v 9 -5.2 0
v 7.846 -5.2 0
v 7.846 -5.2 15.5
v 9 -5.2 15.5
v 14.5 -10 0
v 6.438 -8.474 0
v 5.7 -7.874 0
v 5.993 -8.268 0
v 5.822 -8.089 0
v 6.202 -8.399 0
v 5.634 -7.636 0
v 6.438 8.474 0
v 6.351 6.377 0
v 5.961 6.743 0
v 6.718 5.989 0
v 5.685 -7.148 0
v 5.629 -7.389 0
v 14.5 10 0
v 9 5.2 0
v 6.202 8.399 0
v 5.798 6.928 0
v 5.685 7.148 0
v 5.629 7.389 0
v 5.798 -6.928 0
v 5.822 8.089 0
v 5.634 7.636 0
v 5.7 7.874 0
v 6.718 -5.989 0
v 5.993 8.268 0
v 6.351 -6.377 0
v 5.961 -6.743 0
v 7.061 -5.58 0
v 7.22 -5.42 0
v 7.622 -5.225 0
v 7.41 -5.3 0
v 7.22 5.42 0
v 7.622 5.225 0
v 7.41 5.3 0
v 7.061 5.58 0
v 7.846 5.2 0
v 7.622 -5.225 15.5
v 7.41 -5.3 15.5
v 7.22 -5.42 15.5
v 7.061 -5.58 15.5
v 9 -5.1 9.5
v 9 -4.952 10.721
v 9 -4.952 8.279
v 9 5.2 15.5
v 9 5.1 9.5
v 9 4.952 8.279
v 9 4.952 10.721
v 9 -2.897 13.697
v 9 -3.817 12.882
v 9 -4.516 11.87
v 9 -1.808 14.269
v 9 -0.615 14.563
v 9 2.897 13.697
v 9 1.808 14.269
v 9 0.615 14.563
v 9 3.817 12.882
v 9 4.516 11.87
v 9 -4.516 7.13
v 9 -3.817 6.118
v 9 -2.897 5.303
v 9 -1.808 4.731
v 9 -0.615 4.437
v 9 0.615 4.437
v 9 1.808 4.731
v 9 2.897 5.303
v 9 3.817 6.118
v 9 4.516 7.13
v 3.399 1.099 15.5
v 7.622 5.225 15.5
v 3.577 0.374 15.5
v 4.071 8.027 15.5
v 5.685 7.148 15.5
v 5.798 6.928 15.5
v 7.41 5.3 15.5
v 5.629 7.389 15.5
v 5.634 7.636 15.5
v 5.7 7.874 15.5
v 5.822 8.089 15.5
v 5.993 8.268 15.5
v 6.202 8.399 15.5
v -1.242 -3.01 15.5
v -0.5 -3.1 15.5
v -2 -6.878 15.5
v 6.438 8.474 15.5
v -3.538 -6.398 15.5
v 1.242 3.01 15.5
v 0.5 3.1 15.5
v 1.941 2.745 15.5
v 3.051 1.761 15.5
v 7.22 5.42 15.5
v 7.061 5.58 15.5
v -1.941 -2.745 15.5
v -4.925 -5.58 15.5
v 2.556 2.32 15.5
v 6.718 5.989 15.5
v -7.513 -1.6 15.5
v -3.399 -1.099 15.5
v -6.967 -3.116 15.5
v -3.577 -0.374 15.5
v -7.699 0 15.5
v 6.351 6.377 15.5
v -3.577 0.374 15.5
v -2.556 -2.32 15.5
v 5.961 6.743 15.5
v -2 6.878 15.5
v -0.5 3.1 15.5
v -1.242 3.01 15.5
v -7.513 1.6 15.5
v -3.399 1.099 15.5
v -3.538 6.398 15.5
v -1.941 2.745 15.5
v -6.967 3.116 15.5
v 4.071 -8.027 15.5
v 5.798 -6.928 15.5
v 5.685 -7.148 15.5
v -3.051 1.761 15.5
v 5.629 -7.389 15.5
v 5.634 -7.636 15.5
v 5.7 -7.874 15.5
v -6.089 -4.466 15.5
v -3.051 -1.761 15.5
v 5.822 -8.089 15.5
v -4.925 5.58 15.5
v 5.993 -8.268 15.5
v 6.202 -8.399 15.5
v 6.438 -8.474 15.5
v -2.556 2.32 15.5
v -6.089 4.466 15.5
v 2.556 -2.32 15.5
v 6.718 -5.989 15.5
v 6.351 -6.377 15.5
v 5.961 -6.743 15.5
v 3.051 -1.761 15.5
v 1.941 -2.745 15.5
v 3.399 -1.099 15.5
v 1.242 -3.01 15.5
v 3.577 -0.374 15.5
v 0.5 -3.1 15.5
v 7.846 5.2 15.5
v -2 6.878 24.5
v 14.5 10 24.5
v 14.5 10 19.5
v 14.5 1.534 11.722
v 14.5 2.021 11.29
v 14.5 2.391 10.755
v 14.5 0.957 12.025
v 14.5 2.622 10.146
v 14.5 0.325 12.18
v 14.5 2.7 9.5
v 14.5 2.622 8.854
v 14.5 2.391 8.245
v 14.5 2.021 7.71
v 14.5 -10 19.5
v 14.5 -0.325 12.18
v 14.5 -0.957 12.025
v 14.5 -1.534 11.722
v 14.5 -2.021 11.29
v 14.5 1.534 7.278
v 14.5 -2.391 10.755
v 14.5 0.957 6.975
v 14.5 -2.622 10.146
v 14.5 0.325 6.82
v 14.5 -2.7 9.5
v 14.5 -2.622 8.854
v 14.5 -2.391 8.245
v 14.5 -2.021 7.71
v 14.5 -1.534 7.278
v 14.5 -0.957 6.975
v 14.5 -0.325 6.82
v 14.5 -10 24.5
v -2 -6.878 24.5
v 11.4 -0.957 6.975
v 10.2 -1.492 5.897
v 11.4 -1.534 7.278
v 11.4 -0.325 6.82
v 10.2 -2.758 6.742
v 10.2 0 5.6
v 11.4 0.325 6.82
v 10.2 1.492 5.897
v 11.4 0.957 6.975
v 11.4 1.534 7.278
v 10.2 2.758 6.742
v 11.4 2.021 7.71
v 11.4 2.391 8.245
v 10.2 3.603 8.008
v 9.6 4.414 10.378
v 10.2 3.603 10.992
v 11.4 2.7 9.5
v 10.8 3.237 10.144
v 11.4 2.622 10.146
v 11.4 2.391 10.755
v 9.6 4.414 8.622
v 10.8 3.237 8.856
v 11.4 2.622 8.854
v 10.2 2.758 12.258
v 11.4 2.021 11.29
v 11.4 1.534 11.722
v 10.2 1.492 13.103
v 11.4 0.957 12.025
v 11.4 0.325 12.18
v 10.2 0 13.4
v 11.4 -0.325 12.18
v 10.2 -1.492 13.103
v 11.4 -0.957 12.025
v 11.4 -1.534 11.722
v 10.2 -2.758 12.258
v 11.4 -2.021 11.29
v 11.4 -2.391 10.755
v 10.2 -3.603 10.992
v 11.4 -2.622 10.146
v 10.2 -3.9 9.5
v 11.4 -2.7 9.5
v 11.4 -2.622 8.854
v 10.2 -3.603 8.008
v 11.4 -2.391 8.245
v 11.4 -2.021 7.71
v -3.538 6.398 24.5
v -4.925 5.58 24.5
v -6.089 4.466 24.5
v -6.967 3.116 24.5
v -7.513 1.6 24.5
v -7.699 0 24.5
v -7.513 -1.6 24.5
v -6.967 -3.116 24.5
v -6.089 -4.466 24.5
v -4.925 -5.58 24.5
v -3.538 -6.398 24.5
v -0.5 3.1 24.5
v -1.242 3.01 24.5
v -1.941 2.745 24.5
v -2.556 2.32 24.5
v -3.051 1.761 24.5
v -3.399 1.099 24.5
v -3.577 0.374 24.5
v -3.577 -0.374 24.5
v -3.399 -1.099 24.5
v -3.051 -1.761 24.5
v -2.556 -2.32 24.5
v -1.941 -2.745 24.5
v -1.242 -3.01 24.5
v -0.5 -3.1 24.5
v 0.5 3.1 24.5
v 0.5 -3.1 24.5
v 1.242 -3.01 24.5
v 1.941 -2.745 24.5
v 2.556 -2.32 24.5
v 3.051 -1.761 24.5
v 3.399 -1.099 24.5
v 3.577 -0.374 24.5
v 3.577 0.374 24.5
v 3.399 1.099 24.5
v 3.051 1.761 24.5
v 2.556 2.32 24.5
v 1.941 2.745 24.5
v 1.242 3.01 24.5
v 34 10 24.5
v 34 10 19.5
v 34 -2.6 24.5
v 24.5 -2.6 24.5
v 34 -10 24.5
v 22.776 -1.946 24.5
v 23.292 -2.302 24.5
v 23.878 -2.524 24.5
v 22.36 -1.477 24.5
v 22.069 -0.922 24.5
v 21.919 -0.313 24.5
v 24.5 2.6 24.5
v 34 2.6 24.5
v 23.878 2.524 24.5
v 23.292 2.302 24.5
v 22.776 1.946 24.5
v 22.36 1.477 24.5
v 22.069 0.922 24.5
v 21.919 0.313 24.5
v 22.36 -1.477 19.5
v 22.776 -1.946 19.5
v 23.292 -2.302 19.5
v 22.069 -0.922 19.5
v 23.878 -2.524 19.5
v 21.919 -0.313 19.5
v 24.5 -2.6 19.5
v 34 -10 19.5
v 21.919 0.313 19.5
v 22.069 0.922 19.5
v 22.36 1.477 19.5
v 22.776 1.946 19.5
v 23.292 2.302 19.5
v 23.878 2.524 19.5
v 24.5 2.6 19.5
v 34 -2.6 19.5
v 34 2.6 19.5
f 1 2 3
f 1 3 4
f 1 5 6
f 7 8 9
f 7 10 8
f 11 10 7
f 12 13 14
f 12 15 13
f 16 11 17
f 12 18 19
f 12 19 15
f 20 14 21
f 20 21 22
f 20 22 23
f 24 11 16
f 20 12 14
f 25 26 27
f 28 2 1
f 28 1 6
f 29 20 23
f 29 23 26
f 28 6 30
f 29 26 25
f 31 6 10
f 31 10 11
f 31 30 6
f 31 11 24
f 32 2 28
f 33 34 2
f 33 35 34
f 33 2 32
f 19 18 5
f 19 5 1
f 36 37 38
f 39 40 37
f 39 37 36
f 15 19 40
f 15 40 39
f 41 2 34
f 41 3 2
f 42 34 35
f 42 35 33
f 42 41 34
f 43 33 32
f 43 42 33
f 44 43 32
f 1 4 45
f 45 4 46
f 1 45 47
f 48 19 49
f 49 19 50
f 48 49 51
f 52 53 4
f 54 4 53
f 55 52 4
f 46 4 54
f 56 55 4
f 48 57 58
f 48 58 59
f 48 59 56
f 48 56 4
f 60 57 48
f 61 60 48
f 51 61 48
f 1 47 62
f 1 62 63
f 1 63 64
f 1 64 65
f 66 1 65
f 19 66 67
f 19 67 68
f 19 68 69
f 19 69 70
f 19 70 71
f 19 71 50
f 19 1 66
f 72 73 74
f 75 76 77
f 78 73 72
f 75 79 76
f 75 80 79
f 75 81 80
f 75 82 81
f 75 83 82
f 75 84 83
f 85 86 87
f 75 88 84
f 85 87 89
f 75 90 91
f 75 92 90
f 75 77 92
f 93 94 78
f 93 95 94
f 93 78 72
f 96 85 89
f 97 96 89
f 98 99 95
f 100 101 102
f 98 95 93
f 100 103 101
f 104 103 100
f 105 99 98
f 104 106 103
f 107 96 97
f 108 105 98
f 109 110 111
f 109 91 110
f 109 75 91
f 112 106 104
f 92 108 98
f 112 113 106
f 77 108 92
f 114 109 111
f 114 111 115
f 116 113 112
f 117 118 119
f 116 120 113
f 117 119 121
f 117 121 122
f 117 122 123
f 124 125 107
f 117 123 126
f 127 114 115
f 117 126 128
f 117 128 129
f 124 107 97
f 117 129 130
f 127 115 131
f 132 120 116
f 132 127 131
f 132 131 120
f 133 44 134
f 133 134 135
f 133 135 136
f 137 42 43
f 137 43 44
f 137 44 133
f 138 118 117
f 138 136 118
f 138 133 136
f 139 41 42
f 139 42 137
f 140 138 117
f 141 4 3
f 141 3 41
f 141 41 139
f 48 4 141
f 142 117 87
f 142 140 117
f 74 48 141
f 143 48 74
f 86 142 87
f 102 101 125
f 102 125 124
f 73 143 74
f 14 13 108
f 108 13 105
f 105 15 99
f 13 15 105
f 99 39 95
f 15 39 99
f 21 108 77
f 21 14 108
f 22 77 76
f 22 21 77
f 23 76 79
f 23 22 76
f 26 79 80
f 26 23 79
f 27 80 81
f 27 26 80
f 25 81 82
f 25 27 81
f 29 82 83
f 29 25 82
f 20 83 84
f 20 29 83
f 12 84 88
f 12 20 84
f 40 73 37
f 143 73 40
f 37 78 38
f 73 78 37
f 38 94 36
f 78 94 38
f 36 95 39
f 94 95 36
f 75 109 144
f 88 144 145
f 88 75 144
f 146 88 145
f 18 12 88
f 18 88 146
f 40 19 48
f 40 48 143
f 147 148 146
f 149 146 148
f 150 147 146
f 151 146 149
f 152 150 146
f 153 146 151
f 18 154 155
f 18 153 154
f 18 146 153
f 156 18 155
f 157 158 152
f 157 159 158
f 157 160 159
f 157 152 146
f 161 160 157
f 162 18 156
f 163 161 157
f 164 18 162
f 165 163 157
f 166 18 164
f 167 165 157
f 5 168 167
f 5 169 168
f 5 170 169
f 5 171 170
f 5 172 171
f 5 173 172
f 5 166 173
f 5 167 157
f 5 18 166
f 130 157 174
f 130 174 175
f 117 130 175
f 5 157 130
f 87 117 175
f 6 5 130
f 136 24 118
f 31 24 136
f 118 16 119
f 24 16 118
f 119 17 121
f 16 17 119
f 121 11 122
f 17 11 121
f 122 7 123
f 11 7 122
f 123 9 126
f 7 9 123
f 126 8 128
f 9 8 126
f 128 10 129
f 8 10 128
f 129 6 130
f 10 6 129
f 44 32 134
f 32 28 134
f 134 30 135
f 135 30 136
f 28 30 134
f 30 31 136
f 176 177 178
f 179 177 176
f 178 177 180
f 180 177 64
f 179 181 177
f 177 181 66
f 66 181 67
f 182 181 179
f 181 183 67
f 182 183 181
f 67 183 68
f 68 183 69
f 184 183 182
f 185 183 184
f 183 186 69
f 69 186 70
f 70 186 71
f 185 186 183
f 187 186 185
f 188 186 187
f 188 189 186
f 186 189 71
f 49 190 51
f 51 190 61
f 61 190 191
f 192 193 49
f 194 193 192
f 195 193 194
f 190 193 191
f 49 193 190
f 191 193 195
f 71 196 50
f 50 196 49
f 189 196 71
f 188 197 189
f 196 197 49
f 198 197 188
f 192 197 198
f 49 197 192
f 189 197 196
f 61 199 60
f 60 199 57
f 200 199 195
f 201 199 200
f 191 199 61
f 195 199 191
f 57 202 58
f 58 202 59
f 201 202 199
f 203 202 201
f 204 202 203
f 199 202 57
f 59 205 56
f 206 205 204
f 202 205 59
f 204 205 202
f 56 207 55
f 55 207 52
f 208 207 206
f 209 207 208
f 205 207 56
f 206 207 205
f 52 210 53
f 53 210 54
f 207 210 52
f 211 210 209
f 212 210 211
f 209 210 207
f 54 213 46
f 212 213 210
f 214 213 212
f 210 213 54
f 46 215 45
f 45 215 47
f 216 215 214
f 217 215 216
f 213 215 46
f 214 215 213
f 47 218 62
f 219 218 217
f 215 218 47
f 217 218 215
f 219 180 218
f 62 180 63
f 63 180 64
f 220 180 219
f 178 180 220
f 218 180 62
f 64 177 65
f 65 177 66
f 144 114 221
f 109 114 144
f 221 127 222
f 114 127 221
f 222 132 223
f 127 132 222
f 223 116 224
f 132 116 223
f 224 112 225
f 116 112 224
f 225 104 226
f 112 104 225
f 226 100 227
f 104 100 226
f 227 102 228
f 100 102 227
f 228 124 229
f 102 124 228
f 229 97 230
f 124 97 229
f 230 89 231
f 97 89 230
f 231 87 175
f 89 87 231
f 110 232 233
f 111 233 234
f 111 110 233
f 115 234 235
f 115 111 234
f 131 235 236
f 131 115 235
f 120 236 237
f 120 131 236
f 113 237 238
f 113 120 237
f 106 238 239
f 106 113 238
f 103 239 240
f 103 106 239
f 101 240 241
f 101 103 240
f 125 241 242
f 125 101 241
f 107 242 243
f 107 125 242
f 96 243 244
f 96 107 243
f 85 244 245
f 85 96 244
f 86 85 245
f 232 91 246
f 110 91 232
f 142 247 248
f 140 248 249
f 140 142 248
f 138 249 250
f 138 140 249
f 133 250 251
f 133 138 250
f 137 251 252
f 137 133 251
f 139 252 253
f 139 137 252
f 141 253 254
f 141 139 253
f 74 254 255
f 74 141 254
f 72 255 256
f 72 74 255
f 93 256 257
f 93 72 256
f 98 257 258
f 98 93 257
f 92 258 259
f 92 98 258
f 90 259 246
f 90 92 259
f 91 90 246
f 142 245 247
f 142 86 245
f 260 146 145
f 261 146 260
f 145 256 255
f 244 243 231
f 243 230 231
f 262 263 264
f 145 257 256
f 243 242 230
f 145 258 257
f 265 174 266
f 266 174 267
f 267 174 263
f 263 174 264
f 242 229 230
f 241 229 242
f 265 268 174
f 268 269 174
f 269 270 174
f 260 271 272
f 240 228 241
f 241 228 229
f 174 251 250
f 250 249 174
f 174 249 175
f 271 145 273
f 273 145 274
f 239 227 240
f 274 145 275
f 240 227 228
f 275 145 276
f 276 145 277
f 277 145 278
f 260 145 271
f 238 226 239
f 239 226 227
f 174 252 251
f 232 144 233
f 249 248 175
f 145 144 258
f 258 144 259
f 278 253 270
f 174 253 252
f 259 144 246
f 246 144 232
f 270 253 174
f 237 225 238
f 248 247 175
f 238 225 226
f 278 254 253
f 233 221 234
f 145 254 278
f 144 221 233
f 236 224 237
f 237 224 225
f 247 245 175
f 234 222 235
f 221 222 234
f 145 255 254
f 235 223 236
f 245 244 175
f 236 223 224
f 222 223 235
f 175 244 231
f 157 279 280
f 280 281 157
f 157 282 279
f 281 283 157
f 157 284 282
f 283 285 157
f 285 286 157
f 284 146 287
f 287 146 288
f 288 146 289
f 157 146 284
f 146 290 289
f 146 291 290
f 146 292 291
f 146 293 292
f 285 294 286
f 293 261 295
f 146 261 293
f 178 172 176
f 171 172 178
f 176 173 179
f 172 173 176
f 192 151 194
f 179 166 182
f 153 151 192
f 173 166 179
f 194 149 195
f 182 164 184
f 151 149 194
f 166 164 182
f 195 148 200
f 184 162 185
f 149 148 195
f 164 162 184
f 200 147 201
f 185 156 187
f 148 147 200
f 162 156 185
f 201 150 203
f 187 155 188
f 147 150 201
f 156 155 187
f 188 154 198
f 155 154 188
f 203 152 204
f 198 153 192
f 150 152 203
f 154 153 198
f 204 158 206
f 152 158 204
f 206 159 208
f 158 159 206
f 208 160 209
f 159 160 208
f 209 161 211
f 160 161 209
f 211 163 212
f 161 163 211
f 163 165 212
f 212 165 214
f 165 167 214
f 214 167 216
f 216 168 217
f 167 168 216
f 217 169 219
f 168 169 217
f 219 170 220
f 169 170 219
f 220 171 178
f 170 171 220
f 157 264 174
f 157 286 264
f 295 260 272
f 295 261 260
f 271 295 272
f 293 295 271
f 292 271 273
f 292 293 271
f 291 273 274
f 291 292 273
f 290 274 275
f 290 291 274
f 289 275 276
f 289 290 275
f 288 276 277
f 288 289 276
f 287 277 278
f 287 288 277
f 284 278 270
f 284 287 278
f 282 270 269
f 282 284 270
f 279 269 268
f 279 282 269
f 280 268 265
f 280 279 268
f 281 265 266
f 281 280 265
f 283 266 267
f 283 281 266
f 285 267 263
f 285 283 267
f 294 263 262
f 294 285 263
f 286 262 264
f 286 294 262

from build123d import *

# Parameters (mm, degrees)
PAD_DEPTH       = 24.5
SKETCH001_W     = 15
SKETCH001_H     = 12
POCKET_DEPTH    = 14.5
SKETCH002_W     = 20
SKETCH002_H     = 20
POCKET001_DEPTH = 19.5
SKETCH003_R     = 2.7
POCKET002_DEPTH = 22.19959
POCKET003_DEPTH = 15.5
CHAMFER_SIZE    = 2.4
FILLET_R        = 1


with BuildPart() as part:
    # Sketch → Pad (new body)
    with BuildSketch(Plane.XY):
        with BuildLine():
            Line((-2, 6.87796), (14.5, 10))
            Line((14.5, 10), (34, 10))
            Line((34, 10), (34, 2.6))
            Line((24.5, 2.6), (34, 2.6))
            ThreePointArc((24.5, 2.6), (21.9, 0), (24.5, -2.6))
            Line((24.5, -2.6), (34, -2.6))
            Line((34, -2.6), (34, -10))
            Line((34, -10), (14.5, -10))
            Line((14.5, -10), (-2, -6.87796))
            ThreePointArc((-2, 6.87796), (-7.69859, 0), (-2, -6.87796))
        make_face()
        with BuildLine():
            ThreePointArc((-0.5, 3.1), (-3.6, 0), (-0.5, -3.1))
            Line((-0.5, -3.1), (0.5, -3.1))
            ThreePointArc((0.5, -3.1), (3.6, 0), (0.5, 3.1))
            Line((-0.5, 3.1), (0.5, 3.1))
        make_face(mode=Mode.SUBTRACT)
    extrude(amount=PAD_DEPTH)

    # Sketch001 (on Face3 of Pad) → Pocket (cut)
    with BuildSketch(Plane.YZ.offset(34)):
        with Locations((2, 0)):
            Rectangle(SKETCH001_W, SKETCH001_H)
    extrude(amount=-POCKET_DEPTH, mode=Mode.SUBTRACT)

    # Sketch002 (on Face4 of Pocket) → Pocket001 (cut)
    with BuildSketch(Plane(origin=(0, 0, 0), x_dir=(1, 0, 0), z_dir=(0, 0, -1))):
        with Locations((24.5, 0)):
            Rectangle(SKETCH002_W, SKETCH002_H)
    extrude(amount=-POCKET001_DEPTH, mode=Mode.SUBTRACT)

    # Sketch003 (on Face5 of Pocket001) → Pocket002 (cut, through all)
    with BuildSketch(Plane.YZ.offset(14.5)):
        with Locations((0, 9.5)):
            Circle(SKETCH003_R)
    extrude(amount=-POCKET002_DEPTH, mode=Mode.SUBTRACT)

    # Sketch004 (on Face2 of Pocket002) → Pocket003 (cut)
    with BuildSketch(Plane(origin=(0, 0, 0), x_dir=(1, 0, 0), z_dir=(0, 0, -1))):
        with BuildLine():
            ThreePointArc((7.345747, 5.2), (-9, 0), (7.345747, -5.2))
            Line((9, -5.2), (7.345747, -5.2))
            Line((9, 5.2), (9, -5.2))
            Line((7.345747, 5.2), (9, 5.2))
        make_face()
    extrude(amount=-POCKET003_DEPTH, mode=Mode.SUBTRACT)

    # Chamfer
    chamfer_edges = [part.edges().sort_by_distance(p)[0] for p in [
        (9, -2.7, 9.5),
    ]]
    chamfer(chamfer_edges, length=CHAMFER_SIZE)

    # Fillet
    fillet_edges = [part.edges().sort_by_distance(p)[0] for p in [
        (4.070941, 8.02667, 7.75),
        (7.345747, 5.2, 7.75),
        (7.345747, -5.2, 7.75),
        (4.070941, -8.02667, 7.75),
    ]]
    fillet(fillet_edges, radius=FILLET_R)


solid = part.part
